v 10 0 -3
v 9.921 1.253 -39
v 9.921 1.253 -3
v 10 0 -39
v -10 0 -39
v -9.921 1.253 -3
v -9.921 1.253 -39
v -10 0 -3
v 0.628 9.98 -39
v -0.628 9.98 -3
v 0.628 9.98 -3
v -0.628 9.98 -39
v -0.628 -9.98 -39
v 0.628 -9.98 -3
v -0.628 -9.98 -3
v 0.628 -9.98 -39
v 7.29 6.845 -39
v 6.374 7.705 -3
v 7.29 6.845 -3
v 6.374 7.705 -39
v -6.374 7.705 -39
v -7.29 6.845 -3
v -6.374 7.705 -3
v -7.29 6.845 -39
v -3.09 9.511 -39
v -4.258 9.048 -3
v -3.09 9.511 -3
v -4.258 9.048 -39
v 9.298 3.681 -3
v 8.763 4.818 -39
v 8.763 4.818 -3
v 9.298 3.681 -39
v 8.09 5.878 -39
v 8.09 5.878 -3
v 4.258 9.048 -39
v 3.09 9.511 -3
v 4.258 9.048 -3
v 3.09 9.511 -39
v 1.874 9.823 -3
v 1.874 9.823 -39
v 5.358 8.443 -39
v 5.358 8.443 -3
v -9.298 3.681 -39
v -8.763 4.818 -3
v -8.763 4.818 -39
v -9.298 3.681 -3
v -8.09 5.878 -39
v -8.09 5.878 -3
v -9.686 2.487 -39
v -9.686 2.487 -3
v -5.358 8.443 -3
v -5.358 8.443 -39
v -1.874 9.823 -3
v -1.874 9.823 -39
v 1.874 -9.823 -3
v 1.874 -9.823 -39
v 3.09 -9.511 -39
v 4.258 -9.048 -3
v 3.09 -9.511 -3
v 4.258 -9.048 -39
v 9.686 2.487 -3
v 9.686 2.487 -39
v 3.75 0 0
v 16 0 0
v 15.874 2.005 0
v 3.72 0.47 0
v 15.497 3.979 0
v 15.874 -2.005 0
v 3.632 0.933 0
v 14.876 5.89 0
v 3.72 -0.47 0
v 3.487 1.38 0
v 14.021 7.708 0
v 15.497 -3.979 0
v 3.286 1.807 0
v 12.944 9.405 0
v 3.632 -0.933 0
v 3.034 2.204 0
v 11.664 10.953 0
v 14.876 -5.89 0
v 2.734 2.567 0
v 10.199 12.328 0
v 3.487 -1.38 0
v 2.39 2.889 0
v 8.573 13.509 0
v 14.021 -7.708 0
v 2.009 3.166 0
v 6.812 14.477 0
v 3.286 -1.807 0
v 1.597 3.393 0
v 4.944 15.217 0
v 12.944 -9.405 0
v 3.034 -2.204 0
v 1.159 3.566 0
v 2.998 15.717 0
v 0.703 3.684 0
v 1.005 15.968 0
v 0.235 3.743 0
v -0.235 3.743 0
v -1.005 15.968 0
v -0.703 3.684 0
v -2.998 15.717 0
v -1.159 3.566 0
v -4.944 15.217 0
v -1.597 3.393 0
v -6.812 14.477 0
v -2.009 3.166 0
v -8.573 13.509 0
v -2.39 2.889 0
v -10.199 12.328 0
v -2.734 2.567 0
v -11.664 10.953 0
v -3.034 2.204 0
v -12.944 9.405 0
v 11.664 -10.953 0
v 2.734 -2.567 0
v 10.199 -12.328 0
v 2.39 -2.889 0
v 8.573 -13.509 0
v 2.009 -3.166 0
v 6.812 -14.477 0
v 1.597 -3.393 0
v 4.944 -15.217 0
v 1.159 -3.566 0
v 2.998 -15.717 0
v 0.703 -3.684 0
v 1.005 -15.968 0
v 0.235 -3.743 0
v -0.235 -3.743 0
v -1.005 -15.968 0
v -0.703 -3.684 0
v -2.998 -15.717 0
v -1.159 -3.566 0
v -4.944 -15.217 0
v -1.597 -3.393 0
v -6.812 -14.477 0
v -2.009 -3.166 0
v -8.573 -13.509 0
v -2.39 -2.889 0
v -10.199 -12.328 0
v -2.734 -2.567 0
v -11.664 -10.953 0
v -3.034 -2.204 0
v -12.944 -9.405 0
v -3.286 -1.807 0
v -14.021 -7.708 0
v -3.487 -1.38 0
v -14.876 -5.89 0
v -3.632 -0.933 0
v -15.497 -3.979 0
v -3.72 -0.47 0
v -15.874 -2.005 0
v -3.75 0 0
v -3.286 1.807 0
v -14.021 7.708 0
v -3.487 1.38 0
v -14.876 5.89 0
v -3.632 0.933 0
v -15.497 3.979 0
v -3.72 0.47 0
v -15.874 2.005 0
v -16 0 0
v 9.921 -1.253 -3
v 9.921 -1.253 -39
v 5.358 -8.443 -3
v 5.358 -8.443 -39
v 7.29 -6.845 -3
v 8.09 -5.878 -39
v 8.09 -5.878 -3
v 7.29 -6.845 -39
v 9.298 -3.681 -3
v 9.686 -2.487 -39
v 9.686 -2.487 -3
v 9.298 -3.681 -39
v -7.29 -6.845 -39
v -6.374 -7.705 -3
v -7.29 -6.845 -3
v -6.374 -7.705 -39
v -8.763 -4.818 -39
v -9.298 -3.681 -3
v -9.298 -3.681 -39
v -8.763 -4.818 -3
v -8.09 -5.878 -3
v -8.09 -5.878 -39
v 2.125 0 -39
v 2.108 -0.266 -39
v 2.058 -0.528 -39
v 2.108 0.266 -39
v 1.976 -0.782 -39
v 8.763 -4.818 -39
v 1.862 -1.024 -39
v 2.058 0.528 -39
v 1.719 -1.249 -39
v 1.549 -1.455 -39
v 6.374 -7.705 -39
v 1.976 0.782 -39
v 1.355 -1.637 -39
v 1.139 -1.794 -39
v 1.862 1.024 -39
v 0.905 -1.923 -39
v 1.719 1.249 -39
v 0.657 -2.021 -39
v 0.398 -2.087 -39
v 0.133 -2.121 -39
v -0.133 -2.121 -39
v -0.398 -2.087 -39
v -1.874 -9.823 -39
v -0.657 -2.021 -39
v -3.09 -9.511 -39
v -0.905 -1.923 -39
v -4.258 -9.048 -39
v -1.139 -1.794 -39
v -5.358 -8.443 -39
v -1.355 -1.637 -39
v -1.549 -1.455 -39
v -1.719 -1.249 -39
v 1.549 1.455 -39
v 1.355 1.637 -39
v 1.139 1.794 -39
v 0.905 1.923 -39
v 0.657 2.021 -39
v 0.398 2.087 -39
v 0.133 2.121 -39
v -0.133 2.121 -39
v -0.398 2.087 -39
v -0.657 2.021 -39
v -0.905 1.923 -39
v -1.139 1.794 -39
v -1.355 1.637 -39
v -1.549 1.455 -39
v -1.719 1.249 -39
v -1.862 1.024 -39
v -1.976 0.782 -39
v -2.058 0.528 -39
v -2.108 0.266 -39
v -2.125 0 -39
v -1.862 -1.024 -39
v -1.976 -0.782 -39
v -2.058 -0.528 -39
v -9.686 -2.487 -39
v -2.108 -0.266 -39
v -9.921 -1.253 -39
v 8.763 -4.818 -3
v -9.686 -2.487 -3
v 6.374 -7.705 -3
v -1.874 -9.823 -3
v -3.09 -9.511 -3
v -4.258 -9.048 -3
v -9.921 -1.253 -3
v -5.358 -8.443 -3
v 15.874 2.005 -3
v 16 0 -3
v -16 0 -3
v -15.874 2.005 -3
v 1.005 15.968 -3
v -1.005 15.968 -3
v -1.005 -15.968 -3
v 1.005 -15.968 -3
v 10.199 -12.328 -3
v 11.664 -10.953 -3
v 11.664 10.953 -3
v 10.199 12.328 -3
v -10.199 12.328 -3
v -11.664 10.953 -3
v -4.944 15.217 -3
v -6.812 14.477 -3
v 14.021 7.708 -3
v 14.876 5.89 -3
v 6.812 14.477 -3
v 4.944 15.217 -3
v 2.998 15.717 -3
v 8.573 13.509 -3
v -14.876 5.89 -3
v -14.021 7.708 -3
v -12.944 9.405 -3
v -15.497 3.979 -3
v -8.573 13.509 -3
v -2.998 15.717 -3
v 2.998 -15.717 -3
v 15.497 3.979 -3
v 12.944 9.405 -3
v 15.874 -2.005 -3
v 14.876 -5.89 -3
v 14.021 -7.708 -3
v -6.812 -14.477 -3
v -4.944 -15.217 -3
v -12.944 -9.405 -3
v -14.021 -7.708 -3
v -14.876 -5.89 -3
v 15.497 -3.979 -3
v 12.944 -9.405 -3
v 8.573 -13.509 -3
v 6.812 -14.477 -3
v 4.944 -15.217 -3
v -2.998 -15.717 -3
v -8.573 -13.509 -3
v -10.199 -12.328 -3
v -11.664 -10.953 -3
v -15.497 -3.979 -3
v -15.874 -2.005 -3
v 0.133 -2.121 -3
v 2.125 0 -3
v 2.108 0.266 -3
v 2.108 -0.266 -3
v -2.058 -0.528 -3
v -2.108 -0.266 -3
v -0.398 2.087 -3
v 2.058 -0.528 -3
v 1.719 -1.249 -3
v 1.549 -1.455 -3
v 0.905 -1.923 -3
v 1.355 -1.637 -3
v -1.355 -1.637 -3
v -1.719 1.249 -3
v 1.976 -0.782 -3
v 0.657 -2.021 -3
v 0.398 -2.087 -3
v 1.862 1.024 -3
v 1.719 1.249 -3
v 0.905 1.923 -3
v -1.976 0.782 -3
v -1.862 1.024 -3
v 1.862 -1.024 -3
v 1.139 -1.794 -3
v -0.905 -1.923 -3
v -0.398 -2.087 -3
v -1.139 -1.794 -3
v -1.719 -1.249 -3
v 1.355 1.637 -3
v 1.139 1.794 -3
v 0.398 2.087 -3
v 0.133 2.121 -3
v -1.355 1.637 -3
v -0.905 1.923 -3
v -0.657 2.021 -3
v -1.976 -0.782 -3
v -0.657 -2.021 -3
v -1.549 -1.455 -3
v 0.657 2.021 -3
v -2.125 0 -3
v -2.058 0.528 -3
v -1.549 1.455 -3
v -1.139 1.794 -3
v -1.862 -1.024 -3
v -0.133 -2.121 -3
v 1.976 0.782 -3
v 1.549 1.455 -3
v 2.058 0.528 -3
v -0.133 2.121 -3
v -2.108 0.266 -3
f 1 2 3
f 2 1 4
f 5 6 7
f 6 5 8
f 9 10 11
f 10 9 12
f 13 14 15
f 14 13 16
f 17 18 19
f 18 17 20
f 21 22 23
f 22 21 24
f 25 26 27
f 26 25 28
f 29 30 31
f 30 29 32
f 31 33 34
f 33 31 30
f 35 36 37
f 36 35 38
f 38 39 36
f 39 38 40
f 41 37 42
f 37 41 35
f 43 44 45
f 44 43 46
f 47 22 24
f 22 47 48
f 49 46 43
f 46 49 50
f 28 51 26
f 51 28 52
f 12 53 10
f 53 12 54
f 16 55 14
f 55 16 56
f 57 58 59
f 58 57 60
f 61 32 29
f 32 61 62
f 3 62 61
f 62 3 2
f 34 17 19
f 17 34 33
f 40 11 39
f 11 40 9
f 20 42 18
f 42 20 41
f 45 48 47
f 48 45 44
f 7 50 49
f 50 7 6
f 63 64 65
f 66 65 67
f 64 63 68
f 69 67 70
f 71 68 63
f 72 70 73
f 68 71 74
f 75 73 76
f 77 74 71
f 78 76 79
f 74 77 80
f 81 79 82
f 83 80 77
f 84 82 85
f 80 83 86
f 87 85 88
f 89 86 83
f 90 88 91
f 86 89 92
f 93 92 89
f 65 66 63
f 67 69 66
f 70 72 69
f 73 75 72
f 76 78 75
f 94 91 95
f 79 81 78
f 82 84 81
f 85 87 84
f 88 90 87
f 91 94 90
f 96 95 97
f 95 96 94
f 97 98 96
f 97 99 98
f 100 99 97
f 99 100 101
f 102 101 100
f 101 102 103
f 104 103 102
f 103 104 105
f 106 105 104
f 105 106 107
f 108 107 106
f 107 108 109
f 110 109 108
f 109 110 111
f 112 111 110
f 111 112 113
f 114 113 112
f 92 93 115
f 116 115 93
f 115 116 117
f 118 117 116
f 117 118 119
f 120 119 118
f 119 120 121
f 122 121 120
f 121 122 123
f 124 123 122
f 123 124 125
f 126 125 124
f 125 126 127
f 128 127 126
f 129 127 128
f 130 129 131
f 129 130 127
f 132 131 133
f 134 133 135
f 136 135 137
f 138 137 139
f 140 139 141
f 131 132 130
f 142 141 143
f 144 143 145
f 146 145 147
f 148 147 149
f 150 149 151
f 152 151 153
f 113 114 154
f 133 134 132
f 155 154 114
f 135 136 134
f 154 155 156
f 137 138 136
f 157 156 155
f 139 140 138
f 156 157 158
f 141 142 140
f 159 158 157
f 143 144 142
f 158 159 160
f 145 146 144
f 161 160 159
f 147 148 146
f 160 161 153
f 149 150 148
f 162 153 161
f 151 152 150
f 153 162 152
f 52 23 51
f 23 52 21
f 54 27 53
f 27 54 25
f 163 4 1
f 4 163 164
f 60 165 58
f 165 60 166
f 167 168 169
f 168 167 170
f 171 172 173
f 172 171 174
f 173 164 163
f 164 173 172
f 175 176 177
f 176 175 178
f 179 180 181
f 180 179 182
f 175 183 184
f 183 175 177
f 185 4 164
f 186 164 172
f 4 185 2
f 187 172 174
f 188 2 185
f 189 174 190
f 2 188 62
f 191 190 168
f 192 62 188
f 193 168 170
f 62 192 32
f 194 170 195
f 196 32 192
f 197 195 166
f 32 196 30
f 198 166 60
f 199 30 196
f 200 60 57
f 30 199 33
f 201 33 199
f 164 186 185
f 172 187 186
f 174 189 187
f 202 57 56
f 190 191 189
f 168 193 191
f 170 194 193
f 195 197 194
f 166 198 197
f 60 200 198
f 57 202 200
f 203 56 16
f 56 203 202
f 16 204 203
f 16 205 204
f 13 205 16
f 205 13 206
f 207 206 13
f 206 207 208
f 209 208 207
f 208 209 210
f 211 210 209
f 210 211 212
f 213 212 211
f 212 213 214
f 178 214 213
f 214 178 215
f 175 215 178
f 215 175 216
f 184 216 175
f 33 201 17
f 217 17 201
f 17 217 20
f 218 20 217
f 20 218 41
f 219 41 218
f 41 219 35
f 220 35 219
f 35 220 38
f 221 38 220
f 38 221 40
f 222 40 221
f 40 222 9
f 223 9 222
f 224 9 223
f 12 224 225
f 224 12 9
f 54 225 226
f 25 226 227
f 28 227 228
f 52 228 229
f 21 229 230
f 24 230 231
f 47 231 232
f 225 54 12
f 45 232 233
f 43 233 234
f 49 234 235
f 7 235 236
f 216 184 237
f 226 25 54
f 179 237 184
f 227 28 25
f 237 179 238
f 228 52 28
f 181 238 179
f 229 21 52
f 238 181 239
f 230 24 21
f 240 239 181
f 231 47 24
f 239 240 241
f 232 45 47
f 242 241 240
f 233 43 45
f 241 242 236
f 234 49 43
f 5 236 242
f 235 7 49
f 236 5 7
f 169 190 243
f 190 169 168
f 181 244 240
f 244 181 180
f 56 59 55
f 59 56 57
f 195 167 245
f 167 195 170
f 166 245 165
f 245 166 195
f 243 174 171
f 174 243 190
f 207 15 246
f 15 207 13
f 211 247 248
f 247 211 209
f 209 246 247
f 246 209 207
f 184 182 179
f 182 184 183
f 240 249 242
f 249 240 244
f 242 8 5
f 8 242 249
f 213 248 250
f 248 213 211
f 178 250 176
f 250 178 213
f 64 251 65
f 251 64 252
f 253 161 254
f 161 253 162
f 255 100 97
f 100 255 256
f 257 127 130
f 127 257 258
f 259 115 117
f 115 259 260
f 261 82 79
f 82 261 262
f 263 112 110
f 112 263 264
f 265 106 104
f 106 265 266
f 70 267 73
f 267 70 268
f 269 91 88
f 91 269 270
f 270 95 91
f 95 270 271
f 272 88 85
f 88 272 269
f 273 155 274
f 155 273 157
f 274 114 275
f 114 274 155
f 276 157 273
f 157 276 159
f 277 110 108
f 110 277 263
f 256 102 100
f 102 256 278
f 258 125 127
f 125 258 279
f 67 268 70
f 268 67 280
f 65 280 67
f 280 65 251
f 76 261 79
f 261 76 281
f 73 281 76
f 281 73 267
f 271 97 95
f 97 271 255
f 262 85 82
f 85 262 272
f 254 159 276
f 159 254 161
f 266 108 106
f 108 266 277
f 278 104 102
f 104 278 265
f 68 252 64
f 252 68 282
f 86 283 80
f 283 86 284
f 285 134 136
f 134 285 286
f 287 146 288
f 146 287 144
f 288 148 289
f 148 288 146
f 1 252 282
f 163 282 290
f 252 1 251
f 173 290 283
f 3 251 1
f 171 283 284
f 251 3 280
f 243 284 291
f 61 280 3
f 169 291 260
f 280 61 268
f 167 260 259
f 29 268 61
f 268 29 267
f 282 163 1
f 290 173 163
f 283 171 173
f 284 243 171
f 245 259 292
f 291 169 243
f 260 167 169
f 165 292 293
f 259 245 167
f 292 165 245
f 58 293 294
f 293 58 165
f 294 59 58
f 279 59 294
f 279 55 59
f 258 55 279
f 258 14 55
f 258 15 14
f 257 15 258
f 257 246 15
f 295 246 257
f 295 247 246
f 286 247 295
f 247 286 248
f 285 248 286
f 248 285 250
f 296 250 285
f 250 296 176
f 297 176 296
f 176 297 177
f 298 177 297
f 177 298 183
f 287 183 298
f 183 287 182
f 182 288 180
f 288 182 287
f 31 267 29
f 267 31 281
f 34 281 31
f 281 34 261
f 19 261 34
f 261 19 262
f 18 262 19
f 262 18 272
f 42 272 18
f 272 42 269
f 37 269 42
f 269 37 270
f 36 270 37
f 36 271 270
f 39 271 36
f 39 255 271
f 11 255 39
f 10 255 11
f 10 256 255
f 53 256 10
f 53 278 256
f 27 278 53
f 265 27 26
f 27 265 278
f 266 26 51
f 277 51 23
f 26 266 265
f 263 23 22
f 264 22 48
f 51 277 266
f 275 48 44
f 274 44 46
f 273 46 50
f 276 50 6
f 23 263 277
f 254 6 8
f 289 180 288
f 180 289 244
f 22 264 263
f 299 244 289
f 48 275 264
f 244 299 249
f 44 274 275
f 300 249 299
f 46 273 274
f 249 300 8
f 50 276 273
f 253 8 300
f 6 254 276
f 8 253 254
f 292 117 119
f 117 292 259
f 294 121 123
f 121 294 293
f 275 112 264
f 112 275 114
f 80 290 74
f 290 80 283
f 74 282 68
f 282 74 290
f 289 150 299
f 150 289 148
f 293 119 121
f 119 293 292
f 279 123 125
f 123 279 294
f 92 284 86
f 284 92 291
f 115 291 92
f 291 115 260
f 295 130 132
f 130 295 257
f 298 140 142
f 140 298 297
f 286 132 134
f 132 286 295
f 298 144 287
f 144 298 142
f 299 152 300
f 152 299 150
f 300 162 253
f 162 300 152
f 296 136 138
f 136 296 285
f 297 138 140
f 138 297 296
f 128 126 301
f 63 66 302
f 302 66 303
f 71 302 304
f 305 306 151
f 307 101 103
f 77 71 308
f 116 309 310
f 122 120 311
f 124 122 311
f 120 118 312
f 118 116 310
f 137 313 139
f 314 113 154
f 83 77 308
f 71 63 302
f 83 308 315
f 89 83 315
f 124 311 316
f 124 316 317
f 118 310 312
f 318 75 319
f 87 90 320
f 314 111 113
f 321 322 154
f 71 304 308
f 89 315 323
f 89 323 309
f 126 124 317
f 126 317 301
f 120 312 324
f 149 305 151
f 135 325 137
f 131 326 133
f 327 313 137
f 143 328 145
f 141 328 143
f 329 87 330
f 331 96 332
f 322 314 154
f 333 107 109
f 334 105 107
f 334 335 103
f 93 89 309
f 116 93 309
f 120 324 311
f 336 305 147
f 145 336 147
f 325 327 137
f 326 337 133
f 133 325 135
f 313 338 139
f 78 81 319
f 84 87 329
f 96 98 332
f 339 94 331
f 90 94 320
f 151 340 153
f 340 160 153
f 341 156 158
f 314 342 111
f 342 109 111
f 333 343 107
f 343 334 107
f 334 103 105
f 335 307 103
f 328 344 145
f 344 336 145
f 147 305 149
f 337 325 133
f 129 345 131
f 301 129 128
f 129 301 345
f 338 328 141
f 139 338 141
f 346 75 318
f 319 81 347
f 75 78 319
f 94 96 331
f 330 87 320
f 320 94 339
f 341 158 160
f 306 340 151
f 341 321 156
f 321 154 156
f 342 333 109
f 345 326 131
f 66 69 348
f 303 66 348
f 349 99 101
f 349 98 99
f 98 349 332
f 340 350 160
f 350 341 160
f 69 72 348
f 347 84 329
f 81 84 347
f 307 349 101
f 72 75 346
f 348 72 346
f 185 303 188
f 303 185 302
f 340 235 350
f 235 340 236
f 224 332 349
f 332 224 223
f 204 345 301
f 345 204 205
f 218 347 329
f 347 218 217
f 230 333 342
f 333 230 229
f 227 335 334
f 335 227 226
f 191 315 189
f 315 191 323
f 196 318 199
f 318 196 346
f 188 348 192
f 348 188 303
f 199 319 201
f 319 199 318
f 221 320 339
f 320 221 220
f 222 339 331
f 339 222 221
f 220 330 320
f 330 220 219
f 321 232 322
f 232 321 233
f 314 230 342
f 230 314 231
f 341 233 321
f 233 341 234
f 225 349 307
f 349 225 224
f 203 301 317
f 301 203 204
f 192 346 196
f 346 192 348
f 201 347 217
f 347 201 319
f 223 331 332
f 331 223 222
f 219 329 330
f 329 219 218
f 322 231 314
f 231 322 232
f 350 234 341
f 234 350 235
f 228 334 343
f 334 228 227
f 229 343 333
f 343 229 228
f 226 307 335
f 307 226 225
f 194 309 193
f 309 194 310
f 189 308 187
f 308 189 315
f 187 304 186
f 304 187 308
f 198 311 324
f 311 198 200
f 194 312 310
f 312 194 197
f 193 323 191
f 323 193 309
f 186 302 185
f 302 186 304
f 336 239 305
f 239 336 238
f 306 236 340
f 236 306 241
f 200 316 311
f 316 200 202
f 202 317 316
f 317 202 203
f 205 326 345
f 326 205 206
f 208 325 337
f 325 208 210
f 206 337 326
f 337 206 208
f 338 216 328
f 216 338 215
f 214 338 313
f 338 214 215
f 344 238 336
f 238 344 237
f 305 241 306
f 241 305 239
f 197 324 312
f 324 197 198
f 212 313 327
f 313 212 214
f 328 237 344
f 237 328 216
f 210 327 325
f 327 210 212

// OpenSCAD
$fn = 50;


difference() {
	union() {
		translate(v = [0, 0, -39.0000000000]) {
			cylinder(h = 39, r = 10.0000000000);
		}
		translate(v = [0, 0, -3.0000000000]) {
			cylinder(h = 3, r = 16.0000000000);
		}
	}
	union() {
		translate(v = [0, 0, 0]) {
			rotate(a = [0, 0, 0]) {
				difference() {
					union() {
						#translate(v = [0, 0, -39.0000000000]) {
							cylinder(h = 39, r = 2.0000000000);
						}
						#translate(v = [0, 0, -3]) {
							cylinder(h = 3, r1 = 2.1250000000, r2 = 3.7500000000);
						}
						#translate(v = [0, 0, -39.0000000000]) {
							cylinder(h = 39, r = 2.1250000000);
						}
						#translate(v = [0, 0, -39.0000000000]) {
							cylinder(h = 39, r = 2.0000000000);
						}
					}
					union();
				}
			}
		}
	}
}
